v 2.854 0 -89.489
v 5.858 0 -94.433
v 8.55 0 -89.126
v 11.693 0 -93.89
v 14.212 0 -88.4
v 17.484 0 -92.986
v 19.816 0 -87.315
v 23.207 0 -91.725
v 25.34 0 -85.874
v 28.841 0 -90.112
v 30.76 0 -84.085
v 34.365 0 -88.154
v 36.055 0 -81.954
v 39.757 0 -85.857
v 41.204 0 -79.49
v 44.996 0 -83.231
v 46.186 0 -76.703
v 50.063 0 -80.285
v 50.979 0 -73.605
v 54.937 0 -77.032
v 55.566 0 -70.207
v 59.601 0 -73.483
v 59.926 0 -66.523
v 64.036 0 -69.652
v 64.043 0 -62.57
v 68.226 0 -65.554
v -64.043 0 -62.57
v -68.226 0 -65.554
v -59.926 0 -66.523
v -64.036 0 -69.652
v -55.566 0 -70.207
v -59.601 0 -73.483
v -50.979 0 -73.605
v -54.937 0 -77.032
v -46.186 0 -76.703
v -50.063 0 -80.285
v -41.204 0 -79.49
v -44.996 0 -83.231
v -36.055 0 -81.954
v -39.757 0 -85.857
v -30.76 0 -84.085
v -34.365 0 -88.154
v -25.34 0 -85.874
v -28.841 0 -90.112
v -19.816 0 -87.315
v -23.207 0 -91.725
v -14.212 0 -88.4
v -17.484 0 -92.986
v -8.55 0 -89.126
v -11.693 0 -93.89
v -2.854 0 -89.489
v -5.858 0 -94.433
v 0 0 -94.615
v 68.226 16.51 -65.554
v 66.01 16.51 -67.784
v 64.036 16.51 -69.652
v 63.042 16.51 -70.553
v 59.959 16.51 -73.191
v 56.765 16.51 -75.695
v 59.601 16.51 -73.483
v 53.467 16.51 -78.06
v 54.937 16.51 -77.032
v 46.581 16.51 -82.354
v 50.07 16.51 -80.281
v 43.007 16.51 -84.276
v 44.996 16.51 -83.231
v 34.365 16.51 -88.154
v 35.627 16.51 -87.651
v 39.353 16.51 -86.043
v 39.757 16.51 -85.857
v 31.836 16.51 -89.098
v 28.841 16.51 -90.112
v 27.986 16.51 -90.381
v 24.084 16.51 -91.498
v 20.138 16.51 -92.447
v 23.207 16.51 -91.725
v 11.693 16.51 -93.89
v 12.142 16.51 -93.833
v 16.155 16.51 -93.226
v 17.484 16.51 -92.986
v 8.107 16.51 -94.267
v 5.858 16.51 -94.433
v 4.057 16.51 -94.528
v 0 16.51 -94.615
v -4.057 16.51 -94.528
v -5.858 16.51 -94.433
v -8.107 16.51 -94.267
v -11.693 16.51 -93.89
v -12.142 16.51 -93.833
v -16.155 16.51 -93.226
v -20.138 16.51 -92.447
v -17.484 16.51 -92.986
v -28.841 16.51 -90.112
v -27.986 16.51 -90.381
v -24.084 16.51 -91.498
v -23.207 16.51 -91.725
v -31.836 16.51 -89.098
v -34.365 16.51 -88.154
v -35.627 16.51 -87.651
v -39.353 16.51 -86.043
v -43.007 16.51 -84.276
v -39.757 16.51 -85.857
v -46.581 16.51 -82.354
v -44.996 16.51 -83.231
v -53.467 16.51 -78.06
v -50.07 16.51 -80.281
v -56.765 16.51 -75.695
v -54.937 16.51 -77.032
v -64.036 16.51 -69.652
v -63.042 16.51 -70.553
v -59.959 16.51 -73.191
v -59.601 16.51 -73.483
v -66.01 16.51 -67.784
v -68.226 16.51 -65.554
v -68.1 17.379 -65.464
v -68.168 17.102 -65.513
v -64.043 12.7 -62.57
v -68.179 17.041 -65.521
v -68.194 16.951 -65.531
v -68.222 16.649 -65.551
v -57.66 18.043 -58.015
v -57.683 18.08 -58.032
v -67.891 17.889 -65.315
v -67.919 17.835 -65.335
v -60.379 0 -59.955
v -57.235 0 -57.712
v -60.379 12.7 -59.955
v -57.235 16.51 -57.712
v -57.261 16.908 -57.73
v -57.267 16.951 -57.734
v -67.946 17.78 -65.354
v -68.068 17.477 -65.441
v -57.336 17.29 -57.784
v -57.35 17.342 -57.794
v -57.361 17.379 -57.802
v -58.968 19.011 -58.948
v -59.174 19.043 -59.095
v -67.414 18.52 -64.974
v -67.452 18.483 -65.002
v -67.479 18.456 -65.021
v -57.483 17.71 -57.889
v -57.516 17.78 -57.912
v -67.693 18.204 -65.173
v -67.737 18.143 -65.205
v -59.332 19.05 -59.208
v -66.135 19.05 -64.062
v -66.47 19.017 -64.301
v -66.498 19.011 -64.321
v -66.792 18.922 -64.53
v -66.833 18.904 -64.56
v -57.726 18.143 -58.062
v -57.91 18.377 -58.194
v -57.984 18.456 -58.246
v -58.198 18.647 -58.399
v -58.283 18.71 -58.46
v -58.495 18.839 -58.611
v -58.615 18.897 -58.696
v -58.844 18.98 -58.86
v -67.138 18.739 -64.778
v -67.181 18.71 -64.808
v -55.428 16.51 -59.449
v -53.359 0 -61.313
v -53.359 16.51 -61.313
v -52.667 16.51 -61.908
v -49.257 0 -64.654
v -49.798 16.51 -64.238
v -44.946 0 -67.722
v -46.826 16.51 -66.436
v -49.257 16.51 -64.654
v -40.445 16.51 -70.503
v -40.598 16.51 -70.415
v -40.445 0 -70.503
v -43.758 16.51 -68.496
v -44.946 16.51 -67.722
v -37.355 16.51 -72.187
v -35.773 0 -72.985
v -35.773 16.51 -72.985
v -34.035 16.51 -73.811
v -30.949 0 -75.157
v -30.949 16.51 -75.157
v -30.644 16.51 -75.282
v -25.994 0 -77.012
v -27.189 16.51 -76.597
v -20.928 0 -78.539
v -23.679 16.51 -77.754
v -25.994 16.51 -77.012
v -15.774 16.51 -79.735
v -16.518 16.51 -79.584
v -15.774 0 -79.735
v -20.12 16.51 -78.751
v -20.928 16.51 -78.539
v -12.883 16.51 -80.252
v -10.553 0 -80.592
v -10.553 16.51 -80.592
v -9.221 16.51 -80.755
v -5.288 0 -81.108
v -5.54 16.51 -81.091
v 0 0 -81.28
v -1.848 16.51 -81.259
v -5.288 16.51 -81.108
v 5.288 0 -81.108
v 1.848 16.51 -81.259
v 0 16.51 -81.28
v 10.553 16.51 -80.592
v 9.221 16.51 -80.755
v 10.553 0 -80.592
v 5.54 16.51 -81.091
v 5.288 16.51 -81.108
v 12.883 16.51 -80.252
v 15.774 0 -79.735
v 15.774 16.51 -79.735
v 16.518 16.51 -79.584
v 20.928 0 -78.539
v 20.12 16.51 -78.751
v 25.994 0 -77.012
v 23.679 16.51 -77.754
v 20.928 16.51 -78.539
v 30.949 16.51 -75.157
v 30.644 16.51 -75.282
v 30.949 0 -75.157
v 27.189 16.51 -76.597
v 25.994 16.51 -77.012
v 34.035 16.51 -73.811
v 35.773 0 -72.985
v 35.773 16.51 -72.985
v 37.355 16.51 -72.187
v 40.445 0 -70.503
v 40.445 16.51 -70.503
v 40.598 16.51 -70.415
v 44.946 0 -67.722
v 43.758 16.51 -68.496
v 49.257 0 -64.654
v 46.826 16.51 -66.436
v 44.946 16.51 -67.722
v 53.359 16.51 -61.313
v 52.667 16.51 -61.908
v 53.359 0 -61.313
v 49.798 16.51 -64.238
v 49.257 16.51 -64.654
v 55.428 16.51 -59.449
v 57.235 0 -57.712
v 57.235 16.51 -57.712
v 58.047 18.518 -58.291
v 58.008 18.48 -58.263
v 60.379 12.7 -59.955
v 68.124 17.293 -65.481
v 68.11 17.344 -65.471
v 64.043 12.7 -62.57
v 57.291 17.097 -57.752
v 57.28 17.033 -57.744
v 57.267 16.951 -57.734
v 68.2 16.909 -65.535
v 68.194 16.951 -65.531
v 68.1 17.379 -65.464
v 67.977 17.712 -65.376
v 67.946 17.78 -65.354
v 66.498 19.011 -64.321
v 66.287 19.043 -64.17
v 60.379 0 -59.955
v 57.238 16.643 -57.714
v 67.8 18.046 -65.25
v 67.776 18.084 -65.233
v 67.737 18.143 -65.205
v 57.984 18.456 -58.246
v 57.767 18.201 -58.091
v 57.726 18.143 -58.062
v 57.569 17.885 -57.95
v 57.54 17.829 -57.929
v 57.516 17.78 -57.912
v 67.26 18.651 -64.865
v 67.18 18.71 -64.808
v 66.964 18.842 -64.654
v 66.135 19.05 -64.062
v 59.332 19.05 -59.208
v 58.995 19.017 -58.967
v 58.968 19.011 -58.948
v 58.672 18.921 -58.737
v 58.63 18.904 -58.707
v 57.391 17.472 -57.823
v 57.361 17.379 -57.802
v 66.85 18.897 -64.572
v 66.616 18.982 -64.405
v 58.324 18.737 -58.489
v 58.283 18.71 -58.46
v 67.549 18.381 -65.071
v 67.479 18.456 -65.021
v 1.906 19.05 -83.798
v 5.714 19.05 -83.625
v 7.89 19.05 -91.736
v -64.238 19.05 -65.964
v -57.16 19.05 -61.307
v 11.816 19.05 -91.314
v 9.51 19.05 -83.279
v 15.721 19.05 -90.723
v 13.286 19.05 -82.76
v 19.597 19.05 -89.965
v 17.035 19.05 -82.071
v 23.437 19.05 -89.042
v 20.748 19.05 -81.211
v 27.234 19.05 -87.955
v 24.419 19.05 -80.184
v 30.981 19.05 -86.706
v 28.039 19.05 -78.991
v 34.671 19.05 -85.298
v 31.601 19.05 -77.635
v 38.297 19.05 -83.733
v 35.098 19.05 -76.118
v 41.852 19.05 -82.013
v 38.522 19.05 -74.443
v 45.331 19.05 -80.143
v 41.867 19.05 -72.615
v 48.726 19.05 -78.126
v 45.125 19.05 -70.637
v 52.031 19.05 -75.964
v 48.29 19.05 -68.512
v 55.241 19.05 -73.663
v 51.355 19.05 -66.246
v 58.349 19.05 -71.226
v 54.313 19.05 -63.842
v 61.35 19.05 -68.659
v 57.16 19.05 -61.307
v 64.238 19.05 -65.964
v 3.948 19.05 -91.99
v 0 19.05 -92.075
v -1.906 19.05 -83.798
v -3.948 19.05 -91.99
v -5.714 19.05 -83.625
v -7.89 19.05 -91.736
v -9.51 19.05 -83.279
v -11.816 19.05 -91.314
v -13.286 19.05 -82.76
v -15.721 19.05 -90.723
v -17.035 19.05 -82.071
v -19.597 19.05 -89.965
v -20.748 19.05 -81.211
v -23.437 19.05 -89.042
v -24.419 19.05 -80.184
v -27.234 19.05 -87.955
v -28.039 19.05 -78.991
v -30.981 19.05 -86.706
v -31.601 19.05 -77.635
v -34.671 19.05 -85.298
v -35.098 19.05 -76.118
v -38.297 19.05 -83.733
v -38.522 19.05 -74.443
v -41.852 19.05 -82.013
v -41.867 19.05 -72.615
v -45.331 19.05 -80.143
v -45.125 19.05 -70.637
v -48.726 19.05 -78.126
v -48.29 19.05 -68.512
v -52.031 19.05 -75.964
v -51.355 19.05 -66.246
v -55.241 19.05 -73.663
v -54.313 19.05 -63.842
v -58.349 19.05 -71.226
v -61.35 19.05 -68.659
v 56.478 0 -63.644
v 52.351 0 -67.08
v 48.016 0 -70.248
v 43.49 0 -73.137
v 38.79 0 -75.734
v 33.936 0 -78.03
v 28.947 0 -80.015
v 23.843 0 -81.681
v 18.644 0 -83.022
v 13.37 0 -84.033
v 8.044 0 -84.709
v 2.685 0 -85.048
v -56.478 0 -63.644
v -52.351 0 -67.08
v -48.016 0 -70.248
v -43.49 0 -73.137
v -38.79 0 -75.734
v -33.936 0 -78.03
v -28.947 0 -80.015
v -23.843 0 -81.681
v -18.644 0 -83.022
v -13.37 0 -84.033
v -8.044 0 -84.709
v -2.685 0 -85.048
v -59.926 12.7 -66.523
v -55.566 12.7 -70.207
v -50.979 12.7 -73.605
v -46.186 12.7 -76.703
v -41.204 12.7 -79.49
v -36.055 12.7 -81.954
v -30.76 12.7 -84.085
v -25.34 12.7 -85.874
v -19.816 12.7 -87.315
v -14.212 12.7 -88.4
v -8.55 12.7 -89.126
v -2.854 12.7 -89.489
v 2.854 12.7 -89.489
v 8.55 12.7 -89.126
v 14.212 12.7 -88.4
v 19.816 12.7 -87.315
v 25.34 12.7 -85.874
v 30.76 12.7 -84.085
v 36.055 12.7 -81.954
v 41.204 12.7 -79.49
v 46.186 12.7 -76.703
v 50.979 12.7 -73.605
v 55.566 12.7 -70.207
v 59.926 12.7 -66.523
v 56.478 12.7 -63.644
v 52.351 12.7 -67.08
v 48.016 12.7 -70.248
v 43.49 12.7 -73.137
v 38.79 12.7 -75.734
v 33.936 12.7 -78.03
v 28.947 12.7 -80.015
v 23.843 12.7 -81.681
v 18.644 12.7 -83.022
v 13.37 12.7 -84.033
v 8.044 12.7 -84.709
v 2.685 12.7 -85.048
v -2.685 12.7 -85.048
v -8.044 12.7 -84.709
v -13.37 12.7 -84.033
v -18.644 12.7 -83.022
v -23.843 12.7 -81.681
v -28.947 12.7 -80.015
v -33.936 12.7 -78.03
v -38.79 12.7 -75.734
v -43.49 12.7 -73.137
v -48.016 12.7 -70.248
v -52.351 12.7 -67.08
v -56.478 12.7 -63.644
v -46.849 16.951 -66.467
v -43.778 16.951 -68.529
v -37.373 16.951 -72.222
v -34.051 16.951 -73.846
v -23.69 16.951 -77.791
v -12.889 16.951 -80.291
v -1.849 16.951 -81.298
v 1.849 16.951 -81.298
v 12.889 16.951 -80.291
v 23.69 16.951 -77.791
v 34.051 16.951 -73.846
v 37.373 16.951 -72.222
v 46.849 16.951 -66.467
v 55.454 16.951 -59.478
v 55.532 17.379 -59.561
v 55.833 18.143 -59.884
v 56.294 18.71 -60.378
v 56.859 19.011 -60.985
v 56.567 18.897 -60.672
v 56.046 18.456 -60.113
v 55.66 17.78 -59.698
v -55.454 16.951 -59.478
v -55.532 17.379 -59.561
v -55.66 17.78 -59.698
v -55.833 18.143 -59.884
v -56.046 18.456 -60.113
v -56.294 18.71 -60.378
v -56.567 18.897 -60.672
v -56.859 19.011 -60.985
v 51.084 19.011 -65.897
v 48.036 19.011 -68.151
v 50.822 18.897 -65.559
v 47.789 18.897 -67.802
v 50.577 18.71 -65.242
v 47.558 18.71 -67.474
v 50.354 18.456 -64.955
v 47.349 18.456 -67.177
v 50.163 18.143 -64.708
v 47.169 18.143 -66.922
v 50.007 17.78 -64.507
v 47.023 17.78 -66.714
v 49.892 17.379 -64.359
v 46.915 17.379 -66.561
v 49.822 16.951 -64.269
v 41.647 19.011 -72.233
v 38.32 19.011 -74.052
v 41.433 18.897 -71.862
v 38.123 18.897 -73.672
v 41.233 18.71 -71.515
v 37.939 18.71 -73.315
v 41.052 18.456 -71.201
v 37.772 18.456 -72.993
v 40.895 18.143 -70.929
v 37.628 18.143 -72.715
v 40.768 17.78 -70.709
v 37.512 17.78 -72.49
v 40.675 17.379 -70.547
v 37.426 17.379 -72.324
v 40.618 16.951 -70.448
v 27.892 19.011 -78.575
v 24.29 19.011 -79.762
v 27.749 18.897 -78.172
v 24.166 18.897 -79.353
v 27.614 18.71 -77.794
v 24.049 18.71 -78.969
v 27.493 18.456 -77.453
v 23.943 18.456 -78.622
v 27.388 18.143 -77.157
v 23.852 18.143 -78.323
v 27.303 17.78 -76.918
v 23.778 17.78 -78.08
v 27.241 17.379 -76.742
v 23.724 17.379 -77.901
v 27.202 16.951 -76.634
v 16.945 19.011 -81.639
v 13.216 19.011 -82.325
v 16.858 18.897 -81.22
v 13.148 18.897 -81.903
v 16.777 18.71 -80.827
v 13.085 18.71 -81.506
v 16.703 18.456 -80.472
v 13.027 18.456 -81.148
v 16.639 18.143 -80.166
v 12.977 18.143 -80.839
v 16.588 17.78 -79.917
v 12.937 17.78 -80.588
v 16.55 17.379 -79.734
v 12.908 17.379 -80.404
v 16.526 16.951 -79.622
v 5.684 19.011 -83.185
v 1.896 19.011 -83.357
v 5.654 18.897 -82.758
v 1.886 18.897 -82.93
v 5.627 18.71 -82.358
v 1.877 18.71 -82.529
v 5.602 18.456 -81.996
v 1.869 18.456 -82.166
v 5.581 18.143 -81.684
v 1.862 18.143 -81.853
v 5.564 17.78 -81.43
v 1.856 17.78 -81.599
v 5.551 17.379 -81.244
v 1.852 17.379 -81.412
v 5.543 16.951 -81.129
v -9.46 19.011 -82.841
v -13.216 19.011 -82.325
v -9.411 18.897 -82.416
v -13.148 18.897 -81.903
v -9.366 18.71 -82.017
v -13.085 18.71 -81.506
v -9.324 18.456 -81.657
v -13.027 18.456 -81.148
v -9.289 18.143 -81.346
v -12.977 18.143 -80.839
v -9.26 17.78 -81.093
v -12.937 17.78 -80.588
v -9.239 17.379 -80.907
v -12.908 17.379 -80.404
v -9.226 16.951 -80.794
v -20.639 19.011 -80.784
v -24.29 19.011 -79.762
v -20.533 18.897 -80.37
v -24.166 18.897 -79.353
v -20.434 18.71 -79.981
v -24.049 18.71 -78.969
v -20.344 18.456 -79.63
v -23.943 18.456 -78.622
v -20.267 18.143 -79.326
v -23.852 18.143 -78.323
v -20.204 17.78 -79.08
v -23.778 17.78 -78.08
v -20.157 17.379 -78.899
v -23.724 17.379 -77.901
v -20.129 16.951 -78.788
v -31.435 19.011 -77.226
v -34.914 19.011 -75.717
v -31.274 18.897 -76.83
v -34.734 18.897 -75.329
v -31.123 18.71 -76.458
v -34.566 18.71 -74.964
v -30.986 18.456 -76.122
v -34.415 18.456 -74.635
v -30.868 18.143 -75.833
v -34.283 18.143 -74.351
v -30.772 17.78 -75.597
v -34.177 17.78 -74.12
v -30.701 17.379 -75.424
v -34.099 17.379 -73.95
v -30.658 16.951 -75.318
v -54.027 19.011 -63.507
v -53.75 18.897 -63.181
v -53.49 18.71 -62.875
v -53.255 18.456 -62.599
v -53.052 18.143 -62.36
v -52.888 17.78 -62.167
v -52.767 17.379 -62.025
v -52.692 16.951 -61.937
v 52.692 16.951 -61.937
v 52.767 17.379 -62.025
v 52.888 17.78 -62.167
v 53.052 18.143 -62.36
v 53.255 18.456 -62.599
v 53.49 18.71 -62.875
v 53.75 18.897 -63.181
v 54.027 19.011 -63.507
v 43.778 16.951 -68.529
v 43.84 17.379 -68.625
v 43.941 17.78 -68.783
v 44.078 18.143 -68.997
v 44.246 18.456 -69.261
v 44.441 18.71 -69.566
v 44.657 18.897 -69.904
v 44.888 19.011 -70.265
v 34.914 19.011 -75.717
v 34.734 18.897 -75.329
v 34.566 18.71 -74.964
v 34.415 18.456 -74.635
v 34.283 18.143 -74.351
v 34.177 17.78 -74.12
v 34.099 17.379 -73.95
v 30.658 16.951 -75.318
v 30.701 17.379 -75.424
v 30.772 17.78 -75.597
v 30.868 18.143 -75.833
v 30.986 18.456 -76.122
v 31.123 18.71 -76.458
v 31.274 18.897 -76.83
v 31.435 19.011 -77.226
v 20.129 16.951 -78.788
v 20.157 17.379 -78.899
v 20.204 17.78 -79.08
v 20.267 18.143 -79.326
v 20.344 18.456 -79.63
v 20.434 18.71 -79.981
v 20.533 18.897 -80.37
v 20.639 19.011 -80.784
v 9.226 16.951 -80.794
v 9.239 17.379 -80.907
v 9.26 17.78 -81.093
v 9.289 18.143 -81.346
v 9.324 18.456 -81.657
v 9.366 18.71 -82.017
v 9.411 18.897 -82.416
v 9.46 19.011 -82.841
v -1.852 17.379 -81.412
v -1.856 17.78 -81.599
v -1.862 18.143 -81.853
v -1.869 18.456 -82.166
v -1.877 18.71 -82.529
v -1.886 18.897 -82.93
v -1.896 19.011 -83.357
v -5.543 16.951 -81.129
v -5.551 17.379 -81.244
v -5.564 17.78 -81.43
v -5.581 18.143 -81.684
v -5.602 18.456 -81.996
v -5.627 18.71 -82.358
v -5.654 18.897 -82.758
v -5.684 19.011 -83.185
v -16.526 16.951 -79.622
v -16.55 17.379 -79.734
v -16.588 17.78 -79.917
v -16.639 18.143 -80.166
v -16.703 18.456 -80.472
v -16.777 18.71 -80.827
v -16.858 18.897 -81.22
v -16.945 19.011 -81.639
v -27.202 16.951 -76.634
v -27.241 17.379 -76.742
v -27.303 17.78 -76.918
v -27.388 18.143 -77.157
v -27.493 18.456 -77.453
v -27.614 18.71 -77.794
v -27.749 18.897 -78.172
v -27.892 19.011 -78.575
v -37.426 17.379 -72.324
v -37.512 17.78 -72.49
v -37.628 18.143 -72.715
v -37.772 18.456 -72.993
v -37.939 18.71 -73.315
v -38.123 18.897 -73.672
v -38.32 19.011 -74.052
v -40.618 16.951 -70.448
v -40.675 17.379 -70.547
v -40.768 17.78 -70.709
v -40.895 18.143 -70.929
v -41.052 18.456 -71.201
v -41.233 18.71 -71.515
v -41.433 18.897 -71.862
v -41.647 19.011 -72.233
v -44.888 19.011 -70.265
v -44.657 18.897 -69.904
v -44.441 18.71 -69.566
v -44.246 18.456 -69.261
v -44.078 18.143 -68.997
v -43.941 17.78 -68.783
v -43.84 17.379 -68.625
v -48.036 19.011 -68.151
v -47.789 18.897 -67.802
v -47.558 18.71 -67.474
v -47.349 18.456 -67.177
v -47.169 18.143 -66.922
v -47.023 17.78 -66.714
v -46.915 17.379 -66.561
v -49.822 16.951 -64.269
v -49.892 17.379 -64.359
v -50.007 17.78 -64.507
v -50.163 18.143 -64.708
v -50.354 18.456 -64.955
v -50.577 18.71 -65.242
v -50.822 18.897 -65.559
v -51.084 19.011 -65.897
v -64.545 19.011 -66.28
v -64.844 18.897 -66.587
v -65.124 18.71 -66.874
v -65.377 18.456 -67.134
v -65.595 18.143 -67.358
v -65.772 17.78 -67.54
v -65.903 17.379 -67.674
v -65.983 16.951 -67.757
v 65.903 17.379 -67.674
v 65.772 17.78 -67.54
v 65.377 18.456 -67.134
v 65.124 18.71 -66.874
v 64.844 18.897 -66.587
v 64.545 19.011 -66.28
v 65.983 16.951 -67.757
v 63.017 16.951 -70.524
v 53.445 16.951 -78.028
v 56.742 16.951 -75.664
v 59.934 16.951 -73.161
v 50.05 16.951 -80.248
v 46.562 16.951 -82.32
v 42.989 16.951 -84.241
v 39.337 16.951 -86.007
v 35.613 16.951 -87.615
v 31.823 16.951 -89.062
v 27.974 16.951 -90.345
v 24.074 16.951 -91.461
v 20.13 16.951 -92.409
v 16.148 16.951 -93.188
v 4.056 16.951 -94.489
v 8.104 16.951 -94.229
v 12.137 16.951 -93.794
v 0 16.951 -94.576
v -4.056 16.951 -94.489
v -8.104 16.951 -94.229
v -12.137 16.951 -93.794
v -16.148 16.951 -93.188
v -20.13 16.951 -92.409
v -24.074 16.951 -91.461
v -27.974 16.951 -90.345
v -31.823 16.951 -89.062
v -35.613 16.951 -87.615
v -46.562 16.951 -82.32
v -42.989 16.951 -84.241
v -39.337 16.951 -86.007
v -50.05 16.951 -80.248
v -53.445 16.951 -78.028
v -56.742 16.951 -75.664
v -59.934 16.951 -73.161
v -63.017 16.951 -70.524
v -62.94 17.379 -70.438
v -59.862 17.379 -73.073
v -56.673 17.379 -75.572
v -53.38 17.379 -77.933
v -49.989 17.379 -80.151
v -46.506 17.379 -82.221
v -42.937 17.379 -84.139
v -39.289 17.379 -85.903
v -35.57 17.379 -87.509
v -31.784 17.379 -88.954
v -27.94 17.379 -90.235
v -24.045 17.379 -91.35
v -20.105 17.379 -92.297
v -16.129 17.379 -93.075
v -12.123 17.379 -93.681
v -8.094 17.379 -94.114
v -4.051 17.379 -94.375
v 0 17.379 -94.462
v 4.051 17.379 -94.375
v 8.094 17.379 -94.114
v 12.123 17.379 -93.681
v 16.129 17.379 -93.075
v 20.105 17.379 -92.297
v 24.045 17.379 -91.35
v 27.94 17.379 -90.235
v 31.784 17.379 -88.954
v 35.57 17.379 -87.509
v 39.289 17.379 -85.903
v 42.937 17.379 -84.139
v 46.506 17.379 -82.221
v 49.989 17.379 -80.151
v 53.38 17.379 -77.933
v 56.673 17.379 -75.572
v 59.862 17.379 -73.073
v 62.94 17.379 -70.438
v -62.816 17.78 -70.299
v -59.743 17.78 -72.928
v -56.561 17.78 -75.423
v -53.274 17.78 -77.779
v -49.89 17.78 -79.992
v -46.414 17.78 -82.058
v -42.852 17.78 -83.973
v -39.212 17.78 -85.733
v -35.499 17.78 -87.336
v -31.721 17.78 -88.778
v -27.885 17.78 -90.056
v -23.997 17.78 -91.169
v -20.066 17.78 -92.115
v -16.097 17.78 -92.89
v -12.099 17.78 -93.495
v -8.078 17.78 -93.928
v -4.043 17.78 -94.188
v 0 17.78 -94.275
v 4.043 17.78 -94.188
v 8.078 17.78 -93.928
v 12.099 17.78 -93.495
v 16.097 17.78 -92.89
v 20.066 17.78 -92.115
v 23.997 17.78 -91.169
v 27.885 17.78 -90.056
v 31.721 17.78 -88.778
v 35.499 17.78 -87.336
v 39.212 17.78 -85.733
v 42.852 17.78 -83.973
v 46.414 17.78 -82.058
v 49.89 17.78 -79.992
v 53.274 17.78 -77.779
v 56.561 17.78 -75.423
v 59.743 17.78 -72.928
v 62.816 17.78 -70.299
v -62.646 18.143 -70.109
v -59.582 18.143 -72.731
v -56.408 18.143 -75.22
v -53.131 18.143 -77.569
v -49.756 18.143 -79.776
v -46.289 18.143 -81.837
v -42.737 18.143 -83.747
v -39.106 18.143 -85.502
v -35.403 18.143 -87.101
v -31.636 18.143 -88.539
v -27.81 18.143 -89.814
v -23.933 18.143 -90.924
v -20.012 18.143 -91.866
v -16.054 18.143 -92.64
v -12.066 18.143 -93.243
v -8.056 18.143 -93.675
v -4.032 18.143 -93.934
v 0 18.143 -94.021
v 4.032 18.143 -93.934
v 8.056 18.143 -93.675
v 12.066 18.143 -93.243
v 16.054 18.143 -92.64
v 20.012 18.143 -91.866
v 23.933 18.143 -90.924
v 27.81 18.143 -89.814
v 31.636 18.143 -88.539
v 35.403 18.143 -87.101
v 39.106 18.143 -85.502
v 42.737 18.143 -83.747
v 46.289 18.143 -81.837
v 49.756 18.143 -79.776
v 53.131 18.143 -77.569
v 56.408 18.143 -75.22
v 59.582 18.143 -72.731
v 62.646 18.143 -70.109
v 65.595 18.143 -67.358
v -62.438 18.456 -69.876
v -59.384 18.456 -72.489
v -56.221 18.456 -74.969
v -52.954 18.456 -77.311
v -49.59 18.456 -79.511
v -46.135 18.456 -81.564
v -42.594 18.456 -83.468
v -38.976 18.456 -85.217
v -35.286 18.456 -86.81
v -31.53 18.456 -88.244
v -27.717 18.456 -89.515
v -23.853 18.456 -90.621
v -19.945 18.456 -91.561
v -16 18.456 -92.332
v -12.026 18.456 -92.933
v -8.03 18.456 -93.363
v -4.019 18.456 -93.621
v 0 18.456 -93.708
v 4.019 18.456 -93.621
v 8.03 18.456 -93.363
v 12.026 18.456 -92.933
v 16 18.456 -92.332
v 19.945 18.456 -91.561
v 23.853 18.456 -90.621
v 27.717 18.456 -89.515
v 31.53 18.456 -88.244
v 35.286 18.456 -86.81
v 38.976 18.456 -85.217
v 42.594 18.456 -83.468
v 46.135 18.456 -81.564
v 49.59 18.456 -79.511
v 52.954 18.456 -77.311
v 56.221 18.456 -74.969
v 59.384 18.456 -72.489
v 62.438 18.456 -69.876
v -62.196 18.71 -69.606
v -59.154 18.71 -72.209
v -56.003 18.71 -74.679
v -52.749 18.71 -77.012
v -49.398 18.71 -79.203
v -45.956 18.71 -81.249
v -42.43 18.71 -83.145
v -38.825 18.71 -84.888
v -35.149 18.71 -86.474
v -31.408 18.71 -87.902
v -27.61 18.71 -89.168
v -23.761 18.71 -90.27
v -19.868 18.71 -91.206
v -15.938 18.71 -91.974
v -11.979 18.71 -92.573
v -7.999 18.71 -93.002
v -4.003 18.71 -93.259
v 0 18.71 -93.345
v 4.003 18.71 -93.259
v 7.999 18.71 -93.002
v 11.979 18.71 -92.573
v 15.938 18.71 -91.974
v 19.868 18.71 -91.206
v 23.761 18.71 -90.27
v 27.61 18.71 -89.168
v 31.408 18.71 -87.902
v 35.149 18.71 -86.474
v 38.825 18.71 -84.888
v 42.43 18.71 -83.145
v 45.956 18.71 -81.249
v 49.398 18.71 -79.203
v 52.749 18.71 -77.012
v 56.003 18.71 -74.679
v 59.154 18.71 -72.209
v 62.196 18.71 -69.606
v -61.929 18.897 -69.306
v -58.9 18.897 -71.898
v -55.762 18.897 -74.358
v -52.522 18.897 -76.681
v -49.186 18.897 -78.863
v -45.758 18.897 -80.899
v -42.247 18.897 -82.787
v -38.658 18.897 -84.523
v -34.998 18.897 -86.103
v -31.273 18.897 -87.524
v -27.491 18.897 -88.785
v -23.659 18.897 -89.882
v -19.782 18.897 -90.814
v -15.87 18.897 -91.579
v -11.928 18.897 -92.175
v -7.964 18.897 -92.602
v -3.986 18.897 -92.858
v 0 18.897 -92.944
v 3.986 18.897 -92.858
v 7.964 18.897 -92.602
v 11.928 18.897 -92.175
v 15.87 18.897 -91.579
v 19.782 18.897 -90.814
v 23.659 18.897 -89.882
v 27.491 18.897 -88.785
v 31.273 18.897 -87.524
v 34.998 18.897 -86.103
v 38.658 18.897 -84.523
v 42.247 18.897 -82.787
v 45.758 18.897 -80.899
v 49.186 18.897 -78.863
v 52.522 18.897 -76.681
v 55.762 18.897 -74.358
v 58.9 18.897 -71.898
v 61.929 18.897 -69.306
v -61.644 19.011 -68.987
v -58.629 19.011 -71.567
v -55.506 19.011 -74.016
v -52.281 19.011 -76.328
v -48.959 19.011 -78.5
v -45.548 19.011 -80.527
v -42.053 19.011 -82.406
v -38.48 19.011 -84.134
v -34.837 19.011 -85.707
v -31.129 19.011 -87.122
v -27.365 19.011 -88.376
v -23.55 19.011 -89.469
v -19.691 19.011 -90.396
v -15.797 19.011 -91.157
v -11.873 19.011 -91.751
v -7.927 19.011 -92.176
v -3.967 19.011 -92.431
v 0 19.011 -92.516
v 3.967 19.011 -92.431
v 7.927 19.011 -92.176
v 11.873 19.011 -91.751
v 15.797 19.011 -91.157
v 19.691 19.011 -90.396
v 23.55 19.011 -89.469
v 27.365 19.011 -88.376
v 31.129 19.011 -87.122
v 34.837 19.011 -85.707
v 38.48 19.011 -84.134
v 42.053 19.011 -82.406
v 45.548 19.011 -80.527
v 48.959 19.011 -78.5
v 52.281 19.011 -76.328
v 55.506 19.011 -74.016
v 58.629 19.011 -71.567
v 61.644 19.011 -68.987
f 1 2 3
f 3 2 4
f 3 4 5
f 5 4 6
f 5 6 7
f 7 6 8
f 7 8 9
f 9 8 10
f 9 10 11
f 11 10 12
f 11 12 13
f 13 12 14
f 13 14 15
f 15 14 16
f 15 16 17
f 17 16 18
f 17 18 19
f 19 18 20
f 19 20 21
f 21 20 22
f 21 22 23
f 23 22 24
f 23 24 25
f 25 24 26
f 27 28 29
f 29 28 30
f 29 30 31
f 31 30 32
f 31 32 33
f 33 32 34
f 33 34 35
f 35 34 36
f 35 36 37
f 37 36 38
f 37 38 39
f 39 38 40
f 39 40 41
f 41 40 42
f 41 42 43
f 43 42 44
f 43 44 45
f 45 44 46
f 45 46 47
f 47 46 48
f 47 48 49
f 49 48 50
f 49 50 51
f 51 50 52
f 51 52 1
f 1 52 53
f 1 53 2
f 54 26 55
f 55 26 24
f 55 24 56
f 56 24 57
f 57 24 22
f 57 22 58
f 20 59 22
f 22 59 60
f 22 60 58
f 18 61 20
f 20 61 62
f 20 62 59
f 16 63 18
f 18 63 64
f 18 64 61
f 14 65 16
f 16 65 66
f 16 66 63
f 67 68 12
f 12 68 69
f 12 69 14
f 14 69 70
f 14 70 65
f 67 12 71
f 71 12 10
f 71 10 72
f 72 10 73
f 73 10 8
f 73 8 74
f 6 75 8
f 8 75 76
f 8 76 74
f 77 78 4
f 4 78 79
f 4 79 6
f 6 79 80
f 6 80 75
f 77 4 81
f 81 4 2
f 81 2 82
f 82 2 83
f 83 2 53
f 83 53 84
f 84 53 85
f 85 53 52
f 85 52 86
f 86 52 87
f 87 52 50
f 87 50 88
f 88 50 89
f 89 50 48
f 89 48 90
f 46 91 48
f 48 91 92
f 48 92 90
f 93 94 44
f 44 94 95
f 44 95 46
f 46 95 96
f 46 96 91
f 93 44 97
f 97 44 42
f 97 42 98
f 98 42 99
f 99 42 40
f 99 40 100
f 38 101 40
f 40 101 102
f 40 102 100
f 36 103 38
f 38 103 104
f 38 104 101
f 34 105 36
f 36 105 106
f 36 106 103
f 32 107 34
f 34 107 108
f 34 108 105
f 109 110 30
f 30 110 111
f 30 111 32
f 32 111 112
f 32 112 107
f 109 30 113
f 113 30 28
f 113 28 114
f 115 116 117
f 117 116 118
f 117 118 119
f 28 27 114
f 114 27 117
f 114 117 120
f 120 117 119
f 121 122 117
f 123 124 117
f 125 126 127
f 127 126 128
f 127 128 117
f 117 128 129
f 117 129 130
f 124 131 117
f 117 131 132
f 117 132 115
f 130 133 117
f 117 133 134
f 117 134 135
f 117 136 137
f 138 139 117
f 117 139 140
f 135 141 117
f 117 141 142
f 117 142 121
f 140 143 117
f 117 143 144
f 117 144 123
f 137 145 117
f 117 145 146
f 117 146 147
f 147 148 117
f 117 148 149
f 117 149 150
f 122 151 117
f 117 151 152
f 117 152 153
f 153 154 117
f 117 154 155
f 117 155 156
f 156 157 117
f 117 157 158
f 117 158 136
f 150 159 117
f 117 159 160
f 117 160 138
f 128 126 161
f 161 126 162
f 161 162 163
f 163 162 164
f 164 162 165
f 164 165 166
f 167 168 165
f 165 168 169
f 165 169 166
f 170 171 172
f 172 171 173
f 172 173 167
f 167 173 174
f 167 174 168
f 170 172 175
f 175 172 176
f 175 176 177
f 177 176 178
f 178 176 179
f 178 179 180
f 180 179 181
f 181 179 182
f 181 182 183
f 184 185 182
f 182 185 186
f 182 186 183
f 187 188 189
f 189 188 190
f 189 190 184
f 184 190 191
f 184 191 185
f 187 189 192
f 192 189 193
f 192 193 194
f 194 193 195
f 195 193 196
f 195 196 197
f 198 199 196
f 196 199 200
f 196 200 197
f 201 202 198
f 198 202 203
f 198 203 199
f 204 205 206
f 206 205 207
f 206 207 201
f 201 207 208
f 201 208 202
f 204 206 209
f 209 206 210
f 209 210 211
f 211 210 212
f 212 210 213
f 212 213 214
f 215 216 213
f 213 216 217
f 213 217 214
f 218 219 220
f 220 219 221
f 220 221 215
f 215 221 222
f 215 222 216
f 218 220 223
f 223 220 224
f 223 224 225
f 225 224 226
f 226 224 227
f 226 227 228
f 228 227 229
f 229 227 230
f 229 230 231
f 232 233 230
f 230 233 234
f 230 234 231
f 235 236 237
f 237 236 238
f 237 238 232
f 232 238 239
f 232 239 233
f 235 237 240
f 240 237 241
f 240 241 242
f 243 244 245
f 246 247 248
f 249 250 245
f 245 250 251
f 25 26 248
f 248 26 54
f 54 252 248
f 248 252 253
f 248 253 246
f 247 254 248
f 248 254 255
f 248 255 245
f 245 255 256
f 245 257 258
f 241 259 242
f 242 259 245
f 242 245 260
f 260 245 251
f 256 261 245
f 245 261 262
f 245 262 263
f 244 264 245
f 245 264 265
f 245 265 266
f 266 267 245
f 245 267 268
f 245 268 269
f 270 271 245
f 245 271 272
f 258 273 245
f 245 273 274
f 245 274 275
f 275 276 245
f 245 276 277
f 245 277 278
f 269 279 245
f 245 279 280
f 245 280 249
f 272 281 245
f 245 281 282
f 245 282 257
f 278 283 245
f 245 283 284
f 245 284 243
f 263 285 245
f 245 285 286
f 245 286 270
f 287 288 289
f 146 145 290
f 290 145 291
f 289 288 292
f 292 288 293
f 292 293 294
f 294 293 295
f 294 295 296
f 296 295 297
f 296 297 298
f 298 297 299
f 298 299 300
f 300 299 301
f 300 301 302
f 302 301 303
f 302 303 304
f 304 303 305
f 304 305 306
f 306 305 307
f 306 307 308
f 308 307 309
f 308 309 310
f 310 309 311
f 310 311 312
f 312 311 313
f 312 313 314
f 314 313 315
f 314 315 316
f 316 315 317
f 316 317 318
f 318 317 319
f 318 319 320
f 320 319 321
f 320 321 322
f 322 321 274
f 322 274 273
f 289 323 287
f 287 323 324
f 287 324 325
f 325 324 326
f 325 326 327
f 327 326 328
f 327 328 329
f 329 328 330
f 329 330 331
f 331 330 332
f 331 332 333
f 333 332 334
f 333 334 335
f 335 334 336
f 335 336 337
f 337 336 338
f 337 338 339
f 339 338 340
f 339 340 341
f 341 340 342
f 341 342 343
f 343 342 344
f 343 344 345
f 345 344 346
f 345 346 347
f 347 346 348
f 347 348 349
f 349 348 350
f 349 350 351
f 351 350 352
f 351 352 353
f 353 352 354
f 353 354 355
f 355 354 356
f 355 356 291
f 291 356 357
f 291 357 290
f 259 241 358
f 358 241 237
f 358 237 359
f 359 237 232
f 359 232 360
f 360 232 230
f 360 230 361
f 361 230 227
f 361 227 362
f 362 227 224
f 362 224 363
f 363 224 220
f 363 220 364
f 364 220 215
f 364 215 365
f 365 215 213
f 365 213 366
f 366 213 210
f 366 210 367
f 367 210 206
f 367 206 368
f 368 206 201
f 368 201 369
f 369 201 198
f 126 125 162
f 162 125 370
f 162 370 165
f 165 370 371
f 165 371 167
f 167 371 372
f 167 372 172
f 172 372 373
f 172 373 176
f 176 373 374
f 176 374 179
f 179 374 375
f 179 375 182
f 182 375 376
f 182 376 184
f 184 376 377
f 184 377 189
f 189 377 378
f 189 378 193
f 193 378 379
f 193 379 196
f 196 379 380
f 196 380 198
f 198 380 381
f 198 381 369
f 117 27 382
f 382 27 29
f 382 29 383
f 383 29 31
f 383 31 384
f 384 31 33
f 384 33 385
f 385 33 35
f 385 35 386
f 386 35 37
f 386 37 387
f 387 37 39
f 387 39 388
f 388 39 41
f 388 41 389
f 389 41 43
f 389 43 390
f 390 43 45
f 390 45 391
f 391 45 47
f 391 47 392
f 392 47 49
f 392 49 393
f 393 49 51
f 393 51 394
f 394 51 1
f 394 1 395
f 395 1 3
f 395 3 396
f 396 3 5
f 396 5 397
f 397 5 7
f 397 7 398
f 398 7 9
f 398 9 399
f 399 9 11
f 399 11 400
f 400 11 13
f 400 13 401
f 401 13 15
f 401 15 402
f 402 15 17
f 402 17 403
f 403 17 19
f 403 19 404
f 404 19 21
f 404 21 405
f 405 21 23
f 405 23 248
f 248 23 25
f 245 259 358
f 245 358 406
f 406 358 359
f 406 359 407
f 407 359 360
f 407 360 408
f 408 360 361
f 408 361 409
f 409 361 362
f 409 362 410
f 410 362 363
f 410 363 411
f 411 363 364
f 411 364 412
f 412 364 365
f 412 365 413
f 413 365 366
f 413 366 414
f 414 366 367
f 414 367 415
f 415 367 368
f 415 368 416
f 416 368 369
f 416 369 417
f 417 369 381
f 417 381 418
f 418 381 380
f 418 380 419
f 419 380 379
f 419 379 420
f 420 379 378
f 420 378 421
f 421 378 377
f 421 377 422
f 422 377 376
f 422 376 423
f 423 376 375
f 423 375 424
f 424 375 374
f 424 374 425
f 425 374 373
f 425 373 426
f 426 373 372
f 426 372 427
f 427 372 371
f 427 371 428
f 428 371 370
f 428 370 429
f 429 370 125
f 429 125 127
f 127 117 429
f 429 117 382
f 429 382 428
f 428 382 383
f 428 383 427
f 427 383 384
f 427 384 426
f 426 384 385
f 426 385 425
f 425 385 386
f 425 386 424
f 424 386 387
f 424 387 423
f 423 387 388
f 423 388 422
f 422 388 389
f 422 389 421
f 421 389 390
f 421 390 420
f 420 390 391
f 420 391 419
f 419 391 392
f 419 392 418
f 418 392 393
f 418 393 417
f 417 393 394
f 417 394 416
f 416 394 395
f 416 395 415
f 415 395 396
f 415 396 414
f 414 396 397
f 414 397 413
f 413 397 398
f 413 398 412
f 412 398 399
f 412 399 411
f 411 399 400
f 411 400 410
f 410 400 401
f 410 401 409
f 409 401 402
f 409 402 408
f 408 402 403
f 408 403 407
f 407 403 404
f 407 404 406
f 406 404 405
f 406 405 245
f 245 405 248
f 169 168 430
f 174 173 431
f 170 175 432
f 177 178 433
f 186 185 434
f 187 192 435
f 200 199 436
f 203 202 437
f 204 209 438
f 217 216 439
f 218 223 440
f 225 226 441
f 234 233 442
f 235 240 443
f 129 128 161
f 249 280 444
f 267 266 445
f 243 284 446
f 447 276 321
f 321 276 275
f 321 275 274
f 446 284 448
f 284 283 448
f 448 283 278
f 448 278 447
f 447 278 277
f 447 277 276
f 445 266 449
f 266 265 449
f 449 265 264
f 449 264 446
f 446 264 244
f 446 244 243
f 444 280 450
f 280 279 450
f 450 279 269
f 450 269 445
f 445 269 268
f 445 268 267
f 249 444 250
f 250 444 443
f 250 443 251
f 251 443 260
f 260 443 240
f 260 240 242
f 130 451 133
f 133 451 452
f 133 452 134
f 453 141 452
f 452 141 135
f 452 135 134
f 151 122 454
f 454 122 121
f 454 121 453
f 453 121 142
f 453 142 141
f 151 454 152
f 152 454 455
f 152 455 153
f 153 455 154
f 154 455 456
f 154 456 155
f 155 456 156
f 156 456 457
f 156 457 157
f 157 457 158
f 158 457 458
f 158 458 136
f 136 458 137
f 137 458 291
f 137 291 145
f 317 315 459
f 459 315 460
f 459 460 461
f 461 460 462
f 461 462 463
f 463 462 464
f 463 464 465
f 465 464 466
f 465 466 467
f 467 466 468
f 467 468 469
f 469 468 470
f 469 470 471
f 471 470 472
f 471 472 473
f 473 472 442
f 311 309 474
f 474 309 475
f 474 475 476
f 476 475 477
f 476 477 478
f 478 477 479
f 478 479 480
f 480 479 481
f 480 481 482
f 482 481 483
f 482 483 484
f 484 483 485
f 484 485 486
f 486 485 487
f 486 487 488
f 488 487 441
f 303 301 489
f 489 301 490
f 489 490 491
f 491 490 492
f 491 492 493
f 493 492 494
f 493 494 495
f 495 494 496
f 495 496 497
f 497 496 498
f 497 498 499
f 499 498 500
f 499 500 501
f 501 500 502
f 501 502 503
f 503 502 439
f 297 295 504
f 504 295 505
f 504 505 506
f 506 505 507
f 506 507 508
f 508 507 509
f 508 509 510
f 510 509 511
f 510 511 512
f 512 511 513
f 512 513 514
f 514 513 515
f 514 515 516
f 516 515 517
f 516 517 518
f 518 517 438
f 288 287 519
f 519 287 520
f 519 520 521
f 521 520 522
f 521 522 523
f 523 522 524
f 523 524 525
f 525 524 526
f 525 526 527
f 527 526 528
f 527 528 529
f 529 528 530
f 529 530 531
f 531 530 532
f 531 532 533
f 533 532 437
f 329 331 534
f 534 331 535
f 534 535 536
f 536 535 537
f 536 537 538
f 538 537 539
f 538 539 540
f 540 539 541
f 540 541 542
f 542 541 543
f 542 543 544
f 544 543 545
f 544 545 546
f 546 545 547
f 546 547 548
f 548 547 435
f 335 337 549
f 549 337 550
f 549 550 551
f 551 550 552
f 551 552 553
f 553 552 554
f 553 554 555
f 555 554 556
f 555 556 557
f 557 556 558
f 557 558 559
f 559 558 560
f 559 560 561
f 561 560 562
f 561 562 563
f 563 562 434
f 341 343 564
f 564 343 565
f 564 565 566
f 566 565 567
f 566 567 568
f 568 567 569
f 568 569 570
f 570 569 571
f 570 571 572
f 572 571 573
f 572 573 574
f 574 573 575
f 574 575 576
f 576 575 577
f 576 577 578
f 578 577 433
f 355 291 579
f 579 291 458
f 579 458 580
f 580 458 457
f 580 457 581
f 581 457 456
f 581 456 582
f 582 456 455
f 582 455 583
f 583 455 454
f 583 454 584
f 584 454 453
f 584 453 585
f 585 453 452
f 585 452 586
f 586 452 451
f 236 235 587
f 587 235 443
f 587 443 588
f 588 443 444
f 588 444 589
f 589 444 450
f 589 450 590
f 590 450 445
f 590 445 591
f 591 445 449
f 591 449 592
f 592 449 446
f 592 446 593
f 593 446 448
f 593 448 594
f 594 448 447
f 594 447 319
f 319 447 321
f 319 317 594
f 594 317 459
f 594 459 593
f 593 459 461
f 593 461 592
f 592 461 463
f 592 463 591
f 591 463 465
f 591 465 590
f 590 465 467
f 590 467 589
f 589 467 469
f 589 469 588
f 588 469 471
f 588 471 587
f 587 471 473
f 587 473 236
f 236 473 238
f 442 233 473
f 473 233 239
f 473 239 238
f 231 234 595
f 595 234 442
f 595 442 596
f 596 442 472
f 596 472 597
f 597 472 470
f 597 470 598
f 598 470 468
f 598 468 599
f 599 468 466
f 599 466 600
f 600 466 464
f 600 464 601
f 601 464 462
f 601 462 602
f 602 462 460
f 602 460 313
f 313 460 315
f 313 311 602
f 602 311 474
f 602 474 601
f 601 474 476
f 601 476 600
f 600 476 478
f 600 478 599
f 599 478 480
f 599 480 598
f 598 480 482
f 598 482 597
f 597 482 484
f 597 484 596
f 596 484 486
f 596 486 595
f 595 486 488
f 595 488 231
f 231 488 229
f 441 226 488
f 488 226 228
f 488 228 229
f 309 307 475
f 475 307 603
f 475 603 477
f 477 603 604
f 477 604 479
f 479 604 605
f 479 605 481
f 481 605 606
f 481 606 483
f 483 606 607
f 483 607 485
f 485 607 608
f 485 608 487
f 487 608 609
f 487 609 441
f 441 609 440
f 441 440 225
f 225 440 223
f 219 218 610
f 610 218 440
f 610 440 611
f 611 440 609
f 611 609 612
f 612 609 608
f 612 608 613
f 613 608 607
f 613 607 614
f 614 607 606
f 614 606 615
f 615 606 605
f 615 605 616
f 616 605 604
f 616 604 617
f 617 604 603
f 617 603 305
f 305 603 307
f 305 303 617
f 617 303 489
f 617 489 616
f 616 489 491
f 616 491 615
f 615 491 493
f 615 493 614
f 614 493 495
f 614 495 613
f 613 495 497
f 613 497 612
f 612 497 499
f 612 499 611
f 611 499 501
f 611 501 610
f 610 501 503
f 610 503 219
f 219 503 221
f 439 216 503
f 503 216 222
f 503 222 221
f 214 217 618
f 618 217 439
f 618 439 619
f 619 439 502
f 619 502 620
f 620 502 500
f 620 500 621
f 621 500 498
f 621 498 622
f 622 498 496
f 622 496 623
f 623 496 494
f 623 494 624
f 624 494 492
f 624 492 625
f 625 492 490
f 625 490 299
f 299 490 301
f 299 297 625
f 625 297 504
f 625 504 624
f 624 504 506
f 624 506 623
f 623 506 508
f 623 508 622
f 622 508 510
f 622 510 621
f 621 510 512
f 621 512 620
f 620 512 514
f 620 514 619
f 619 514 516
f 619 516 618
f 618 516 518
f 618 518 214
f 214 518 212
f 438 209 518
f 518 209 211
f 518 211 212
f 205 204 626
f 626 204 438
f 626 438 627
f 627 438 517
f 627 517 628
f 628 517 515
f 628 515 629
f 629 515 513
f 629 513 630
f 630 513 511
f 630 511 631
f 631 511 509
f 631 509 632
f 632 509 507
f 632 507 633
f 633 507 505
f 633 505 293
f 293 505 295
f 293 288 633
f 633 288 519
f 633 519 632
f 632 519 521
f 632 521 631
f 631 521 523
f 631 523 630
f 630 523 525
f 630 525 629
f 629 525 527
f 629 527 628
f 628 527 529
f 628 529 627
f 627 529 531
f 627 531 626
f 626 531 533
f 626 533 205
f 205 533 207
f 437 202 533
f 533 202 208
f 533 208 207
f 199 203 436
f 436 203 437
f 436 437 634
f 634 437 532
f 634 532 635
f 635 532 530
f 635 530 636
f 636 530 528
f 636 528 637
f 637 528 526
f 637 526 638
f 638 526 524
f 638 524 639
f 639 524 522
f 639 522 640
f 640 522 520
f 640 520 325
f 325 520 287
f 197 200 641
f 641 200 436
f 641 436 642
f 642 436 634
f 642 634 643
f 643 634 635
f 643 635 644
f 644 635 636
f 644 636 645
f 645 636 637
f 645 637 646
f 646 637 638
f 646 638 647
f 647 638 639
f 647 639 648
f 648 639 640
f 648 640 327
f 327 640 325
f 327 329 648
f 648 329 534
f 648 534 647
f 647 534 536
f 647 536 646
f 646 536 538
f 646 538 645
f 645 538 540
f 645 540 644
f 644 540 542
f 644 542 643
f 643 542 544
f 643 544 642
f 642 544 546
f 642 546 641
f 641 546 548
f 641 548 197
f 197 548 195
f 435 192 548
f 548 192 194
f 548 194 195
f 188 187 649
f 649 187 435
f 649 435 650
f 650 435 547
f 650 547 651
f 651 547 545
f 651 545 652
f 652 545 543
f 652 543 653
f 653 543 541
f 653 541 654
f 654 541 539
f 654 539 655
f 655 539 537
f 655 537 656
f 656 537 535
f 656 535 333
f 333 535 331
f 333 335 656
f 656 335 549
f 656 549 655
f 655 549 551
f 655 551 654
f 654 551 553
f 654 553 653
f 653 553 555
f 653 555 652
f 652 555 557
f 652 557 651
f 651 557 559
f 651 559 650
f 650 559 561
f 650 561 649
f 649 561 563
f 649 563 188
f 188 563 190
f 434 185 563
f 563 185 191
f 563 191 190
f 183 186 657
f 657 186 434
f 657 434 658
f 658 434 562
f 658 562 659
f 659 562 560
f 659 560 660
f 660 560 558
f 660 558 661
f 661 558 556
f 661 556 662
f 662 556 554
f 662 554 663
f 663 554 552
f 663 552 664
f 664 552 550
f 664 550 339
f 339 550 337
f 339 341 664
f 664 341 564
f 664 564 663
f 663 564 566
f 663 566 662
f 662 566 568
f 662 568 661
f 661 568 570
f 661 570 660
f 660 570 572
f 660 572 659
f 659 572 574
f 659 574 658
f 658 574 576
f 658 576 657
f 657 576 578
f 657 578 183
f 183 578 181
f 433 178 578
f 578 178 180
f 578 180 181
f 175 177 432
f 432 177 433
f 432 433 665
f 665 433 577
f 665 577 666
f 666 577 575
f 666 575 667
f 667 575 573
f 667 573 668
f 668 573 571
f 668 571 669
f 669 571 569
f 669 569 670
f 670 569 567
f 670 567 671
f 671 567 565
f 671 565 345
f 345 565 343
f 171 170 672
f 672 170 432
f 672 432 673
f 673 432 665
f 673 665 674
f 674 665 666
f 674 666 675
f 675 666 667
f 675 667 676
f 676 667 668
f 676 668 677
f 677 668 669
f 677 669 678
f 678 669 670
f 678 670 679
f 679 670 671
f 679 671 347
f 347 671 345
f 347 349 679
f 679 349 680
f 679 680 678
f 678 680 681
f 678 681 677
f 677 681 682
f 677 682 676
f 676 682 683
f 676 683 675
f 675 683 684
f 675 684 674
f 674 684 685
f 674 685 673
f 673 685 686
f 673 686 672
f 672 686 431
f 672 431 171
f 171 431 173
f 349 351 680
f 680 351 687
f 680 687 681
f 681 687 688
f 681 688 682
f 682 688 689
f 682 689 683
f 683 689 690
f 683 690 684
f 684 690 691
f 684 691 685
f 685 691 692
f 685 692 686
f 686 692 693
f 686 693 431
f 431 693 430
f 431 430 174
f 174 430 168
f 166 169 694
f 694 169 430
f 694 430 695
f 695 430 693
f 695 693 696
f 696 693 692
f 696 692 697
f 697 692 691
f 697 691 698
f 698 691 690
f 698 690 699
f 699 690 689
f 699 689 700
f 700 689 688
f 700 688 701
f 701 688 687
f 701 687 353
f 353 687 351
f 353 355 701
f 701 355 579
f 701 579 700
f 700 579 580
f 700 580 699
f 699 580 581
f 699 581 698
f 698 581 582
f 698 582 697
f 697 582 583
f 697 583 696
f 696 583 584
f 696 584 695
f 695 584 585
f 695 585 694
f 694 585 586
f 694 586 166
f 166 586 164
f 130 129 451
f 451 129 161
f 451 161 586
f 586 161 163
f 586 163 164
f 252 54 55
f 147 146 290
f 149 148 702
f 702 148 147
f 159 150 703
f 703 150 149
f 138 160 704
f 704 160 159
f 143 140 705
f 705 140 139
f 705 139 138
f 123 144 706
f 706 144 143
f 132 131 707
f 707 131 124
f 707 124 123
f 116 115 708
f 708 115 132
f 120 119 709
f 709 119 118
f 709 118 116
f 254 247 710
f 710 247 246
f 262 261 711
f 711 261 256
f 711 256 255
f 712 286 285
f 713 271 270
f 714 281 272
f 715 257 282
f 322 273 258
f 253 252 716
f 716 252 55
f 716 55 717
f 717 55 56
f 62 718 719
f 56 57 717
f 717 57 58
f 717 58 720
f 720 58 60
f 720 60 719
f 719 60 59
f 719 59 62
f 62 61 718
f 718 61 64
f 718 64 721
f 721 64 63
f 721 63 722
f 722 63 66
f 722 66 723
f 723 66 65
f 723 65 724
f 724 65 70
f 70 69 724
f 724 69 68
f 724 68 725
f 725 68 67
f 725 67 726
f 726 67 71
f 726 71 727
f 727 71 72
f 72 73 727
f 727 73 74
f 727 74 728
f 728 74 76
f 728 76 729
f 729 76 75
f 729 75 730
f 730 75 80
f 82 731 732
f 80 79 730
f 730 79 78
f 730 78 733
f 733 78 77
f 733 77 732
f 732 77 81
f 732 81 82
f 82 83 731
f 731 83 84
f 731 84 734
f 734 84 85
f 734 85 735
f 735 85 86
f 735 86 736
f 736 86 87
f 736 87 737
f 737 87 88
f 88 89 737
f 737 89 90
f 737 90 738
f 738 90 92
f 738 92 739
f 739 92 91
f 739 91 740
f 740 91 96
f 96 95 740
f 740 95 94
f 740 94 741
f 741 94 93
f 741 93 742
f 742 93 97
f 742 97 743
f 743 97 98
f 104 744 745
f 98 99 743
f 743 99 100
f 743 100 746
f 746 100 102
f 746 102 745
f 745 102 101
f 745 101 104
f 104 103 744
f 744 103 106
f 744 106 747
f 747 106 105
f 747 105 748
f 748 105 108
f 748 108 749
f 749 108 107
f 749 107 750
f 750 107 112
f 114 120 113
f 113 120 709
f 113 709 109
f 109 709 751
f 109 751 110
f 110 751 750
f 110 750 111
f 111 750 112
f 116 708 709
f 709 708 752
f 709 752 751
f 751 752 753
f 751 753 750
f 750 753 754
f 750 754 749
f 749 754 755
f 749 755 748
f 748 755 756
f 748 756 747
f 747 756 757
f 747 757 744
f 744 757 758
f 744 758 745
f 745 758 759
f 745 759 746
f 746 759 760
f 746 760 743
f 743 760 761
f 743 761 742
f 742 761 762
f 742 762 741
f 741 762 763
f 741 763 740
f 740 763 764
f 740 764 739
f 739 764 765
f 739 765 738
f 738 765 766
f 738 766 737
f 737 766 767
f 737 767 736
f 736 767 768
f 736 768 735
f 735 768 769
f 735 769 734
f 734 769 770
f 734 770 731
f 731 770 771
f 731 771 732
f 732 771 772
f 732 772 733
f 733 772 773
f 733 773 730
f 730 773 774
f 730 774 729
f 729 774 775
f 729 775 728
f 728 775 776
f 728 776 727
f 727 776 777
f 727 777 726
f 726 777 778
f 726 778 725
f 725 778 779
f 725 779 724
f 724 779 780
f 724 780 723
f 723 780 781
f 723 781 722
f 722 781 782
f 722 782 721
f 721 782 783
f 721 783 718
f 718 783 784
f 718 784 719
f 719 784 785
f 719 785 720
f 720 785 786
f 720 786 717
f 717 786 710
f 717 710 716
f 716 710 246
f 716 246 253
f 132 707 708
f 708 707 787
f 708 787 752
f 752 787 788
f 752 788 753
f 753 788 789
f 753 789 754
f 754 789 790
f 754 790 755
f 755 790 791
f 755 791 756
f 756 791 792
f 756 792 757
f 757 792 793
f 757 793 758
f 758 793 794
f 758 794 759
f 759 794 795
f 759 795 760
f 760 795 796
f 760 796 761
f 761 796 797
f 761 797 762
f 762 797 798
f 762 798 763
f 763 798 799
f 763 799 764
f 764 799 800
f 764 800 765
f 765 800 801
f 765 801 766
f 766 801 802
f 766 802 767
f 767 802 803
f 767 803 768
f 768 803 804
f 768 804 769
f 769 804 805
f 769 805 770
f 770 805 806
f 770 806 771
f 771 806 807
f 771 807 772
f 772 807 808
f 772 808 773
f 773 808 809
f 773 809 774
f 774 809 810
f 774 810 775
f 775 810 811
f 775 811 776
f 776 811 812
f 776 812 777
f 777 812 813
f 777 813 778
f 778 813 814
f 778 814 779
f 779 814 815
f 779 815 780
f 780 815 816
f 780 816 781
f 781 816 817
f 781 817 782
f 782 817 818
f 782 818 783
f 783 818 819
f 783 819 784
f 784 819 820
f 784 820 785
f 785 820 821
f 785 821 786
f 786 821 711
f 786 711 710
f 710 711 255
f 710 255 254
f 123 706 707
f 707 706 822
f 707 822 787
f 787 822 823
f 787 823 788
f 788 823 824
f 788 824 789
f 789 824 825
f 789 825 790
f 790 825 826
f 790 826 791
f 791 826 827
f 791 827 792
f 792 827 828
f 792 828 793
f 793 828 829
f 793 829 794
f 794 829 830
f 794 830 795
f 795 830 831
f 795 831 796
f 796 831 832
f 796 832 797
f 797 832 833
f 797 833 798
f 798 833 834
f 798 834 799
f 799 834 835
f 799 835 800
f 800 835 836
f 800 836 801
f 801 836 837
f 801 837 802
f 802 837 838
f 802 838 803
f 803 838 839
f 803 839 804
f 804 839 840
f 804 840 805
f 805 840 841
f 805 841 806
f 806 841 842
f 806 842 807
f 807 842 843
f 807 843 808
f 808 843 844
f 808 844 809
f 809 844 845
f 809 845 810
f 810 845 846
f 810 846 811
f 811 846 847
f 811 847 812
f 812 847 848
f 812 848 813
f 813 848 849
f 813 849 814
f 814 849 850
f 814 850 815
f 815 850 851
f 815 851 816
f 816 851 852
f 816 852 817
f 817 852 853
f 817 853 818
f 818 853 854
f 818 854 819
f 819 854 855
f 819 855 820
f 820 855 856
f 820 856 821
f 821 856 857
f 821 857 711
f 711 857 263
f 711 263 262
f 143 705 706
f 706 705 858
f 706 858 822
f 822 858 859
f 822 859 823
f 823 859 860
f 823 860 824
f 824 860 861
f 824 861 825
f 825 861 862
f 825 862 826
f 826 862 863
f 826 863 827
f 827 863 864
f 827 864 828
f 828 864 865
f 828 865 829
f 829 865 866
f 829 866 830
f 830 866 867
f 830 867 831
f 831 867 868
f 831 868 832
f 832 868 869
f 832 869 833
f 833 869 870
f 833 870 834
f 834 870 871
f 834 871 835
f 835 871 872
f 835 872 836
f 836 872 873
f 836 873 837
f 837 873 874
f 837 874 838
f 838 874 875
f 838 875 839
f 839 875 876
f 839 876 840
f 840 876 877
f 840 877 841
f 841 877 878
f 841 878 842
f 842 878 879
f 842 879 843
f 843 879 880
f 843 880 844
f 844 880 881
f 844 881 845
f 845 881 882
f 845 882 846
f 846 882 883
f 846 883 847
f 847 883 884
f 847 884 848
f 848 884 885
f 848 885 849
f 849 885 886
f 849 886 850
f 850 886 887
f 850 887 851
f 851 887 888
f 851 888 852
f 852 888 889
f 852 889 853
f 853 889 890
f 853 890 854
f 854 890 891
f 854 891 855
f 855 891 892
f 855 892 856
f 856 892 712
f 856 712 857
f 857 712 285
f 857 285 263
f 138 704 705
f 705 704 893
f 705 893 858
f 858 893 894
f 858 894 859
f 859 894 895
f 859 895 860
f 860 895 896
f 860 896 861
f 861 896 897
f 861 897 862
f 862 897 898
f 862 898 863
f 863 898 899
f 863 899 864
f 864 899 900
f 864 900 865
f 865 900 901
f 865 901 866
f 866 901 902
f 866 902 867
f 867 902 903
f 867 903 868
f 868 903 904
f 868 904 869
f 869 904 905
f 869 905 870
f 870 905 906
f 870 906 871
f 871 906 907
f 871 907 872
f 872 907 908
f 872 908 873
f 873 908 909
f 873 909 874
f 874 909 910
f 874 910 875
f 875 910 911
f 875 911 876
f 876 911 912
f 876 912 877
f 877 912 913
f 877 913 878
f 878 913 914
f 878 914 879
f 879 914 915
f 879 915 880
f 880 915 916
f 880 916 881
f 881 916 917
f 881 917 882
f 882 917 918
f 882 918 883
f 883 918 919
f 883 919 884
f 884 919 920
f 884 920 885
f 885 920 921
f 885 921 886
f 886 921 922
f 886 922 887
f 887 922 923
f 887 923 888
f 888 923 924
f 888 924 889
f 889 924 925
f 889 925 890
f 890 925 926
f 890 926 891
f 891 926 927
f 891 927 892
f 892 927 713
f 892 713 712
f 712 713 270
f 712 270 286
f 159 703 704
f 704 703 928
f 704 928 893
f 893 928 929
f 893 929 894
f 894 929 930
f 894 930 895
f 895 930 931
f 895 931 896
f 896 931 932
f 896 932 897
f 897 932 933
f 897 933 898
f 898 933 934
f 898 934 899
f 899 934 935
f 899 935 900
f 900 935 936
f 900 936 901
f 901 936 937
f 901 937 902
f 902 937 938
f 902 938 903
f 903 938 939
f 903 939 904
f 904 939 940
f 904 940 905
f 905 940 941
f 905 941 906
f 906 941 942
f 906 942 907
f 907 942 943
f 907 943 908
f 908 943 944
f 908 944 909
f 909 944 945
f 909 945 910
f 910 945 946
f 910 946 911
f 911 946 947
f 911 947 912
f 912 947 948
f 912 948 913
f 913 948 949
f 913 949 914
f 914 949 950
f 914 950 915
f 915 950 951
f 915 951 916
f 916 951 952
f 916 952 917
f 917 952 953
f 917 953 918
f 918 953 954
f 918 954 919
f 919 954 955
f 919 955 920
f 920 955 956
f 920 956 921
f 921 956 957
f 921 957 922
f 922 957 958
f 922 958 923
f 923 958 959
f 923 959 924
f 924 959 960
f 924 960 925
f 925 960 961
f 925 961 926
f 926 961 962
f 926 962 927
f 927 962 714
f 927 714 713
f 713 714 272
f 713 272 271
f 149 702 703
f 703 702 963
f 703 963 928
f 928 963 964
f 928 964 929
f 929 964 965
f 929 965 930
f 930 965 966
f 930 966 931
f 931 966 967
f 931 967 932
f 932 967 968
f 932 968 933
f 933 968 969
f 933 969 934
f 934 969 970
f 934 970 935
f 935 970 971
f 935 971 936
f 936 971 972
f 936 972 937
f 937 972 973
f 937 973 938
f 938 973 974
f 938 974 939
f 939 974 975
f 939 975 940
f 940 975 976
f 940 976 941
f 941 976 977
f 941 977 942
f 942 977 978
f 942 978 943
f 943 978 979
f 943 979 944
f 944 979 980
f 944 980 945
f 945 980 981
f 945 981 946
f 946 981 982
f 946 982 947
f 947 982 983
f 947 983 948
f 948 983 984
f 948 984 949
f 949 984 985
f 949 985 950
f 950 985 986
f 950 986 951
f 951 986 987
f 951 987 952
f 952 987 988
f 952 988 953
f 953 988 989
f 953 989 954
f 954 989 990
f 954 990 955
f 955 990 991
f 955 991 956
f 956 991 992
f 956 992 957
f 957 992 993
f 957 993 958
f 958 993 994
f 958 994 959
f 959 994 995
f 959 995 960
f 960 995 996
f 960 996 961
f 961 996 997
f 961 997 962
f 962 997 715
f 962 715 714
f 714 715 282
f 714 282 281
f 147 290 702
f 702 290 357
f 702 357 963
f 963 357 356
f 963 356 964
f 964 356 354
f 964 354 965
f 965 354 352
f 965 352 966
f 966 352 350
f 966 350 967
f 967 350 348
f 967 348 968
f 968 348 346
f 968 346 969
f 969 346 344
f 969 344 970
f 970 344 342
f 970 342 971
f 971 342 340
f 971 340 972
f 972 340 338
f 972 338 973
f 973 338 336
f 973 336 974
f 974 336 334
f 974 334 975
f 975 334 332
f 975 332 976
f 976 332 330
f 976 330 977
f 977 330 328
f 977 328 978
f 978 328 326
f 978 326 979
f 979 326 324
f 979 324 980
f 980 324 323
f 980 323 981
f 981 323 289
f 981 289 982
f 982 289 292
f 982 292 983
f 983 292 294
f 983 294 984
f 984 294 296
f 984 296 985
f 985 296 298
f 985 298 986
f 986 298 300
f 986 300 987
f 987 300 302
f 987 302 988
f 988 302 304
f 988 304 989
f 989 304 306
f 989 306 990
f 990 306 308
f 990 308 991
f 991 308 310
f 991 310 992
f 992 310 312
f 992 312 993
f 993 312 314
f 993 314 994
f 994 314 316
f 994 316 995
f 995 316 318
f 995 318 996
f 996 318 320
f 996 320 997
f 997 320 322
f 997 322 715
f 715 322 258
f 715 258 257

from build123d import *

# Parameters (mm, degrees)
BOSS_EXTRUDE1_DEPTH = 19.05
CUT_EXTRUDE1_DEPTH  = 12.7
FILLET1_R           = 2.54


with BuildPart() as part:
    # Sketch1 → Boss-Extrude1 (new body)
    with BuildSketch(Plane(origin=(0, 0, 0), x_dir=(1, 0, 0), z_dir=(0, 1, 0))):
        with BuildLine():
            Line((57.234735331, 57.711554056), (68.22559355, 65.553540024))
            ThreePointArc((68.22559355, 65.553540024), (0, 94.615), (-68.22559355, 65.553540024))
            Line((-68.22559355, 65.553540024), (-57.234735331, 57.711554056))
            ThreePointArc((-57.234735331, 57.711554056), (0, 81.28), (57.234735331, 57.711554056))
        make_face()
    extrude(amount=BOSS_EXTRUDE1_DEPTH)

    # Sketch3 → Cut-Extrude1 (cut)
    with BuildSketch(Plane.XZ):
        with BuildLine():
            Line((-60.379405736, -59.955278859), (-64.043453365, -62.569579718))
            ThreePointArc((-64.043453365, -62.569579718), (0, -89.535), (64.043453365, -62.569579718))
            Line((64.043453365, -62.569579718), (60.379405736, -59.955278859))
            ThreePointArc((60.379405736, -59.955278859), (0, -85.09), (-60.379405736, -59.955278859))
        make_face()
    extrude(amount=-CUT_EXTRUDE1_DEPTH, mode=Mode.SUBTRACT)

    # Fillet1
    fillet1_edges = [part.edges().sort_by_distance(p)[0] for p in [
        (0, 19.05, -81.28),
        (0, 19.05, -94.615),
    ]]
    fillet(fillet1_edges, radius=FILLET1_R)


solid = part.part
